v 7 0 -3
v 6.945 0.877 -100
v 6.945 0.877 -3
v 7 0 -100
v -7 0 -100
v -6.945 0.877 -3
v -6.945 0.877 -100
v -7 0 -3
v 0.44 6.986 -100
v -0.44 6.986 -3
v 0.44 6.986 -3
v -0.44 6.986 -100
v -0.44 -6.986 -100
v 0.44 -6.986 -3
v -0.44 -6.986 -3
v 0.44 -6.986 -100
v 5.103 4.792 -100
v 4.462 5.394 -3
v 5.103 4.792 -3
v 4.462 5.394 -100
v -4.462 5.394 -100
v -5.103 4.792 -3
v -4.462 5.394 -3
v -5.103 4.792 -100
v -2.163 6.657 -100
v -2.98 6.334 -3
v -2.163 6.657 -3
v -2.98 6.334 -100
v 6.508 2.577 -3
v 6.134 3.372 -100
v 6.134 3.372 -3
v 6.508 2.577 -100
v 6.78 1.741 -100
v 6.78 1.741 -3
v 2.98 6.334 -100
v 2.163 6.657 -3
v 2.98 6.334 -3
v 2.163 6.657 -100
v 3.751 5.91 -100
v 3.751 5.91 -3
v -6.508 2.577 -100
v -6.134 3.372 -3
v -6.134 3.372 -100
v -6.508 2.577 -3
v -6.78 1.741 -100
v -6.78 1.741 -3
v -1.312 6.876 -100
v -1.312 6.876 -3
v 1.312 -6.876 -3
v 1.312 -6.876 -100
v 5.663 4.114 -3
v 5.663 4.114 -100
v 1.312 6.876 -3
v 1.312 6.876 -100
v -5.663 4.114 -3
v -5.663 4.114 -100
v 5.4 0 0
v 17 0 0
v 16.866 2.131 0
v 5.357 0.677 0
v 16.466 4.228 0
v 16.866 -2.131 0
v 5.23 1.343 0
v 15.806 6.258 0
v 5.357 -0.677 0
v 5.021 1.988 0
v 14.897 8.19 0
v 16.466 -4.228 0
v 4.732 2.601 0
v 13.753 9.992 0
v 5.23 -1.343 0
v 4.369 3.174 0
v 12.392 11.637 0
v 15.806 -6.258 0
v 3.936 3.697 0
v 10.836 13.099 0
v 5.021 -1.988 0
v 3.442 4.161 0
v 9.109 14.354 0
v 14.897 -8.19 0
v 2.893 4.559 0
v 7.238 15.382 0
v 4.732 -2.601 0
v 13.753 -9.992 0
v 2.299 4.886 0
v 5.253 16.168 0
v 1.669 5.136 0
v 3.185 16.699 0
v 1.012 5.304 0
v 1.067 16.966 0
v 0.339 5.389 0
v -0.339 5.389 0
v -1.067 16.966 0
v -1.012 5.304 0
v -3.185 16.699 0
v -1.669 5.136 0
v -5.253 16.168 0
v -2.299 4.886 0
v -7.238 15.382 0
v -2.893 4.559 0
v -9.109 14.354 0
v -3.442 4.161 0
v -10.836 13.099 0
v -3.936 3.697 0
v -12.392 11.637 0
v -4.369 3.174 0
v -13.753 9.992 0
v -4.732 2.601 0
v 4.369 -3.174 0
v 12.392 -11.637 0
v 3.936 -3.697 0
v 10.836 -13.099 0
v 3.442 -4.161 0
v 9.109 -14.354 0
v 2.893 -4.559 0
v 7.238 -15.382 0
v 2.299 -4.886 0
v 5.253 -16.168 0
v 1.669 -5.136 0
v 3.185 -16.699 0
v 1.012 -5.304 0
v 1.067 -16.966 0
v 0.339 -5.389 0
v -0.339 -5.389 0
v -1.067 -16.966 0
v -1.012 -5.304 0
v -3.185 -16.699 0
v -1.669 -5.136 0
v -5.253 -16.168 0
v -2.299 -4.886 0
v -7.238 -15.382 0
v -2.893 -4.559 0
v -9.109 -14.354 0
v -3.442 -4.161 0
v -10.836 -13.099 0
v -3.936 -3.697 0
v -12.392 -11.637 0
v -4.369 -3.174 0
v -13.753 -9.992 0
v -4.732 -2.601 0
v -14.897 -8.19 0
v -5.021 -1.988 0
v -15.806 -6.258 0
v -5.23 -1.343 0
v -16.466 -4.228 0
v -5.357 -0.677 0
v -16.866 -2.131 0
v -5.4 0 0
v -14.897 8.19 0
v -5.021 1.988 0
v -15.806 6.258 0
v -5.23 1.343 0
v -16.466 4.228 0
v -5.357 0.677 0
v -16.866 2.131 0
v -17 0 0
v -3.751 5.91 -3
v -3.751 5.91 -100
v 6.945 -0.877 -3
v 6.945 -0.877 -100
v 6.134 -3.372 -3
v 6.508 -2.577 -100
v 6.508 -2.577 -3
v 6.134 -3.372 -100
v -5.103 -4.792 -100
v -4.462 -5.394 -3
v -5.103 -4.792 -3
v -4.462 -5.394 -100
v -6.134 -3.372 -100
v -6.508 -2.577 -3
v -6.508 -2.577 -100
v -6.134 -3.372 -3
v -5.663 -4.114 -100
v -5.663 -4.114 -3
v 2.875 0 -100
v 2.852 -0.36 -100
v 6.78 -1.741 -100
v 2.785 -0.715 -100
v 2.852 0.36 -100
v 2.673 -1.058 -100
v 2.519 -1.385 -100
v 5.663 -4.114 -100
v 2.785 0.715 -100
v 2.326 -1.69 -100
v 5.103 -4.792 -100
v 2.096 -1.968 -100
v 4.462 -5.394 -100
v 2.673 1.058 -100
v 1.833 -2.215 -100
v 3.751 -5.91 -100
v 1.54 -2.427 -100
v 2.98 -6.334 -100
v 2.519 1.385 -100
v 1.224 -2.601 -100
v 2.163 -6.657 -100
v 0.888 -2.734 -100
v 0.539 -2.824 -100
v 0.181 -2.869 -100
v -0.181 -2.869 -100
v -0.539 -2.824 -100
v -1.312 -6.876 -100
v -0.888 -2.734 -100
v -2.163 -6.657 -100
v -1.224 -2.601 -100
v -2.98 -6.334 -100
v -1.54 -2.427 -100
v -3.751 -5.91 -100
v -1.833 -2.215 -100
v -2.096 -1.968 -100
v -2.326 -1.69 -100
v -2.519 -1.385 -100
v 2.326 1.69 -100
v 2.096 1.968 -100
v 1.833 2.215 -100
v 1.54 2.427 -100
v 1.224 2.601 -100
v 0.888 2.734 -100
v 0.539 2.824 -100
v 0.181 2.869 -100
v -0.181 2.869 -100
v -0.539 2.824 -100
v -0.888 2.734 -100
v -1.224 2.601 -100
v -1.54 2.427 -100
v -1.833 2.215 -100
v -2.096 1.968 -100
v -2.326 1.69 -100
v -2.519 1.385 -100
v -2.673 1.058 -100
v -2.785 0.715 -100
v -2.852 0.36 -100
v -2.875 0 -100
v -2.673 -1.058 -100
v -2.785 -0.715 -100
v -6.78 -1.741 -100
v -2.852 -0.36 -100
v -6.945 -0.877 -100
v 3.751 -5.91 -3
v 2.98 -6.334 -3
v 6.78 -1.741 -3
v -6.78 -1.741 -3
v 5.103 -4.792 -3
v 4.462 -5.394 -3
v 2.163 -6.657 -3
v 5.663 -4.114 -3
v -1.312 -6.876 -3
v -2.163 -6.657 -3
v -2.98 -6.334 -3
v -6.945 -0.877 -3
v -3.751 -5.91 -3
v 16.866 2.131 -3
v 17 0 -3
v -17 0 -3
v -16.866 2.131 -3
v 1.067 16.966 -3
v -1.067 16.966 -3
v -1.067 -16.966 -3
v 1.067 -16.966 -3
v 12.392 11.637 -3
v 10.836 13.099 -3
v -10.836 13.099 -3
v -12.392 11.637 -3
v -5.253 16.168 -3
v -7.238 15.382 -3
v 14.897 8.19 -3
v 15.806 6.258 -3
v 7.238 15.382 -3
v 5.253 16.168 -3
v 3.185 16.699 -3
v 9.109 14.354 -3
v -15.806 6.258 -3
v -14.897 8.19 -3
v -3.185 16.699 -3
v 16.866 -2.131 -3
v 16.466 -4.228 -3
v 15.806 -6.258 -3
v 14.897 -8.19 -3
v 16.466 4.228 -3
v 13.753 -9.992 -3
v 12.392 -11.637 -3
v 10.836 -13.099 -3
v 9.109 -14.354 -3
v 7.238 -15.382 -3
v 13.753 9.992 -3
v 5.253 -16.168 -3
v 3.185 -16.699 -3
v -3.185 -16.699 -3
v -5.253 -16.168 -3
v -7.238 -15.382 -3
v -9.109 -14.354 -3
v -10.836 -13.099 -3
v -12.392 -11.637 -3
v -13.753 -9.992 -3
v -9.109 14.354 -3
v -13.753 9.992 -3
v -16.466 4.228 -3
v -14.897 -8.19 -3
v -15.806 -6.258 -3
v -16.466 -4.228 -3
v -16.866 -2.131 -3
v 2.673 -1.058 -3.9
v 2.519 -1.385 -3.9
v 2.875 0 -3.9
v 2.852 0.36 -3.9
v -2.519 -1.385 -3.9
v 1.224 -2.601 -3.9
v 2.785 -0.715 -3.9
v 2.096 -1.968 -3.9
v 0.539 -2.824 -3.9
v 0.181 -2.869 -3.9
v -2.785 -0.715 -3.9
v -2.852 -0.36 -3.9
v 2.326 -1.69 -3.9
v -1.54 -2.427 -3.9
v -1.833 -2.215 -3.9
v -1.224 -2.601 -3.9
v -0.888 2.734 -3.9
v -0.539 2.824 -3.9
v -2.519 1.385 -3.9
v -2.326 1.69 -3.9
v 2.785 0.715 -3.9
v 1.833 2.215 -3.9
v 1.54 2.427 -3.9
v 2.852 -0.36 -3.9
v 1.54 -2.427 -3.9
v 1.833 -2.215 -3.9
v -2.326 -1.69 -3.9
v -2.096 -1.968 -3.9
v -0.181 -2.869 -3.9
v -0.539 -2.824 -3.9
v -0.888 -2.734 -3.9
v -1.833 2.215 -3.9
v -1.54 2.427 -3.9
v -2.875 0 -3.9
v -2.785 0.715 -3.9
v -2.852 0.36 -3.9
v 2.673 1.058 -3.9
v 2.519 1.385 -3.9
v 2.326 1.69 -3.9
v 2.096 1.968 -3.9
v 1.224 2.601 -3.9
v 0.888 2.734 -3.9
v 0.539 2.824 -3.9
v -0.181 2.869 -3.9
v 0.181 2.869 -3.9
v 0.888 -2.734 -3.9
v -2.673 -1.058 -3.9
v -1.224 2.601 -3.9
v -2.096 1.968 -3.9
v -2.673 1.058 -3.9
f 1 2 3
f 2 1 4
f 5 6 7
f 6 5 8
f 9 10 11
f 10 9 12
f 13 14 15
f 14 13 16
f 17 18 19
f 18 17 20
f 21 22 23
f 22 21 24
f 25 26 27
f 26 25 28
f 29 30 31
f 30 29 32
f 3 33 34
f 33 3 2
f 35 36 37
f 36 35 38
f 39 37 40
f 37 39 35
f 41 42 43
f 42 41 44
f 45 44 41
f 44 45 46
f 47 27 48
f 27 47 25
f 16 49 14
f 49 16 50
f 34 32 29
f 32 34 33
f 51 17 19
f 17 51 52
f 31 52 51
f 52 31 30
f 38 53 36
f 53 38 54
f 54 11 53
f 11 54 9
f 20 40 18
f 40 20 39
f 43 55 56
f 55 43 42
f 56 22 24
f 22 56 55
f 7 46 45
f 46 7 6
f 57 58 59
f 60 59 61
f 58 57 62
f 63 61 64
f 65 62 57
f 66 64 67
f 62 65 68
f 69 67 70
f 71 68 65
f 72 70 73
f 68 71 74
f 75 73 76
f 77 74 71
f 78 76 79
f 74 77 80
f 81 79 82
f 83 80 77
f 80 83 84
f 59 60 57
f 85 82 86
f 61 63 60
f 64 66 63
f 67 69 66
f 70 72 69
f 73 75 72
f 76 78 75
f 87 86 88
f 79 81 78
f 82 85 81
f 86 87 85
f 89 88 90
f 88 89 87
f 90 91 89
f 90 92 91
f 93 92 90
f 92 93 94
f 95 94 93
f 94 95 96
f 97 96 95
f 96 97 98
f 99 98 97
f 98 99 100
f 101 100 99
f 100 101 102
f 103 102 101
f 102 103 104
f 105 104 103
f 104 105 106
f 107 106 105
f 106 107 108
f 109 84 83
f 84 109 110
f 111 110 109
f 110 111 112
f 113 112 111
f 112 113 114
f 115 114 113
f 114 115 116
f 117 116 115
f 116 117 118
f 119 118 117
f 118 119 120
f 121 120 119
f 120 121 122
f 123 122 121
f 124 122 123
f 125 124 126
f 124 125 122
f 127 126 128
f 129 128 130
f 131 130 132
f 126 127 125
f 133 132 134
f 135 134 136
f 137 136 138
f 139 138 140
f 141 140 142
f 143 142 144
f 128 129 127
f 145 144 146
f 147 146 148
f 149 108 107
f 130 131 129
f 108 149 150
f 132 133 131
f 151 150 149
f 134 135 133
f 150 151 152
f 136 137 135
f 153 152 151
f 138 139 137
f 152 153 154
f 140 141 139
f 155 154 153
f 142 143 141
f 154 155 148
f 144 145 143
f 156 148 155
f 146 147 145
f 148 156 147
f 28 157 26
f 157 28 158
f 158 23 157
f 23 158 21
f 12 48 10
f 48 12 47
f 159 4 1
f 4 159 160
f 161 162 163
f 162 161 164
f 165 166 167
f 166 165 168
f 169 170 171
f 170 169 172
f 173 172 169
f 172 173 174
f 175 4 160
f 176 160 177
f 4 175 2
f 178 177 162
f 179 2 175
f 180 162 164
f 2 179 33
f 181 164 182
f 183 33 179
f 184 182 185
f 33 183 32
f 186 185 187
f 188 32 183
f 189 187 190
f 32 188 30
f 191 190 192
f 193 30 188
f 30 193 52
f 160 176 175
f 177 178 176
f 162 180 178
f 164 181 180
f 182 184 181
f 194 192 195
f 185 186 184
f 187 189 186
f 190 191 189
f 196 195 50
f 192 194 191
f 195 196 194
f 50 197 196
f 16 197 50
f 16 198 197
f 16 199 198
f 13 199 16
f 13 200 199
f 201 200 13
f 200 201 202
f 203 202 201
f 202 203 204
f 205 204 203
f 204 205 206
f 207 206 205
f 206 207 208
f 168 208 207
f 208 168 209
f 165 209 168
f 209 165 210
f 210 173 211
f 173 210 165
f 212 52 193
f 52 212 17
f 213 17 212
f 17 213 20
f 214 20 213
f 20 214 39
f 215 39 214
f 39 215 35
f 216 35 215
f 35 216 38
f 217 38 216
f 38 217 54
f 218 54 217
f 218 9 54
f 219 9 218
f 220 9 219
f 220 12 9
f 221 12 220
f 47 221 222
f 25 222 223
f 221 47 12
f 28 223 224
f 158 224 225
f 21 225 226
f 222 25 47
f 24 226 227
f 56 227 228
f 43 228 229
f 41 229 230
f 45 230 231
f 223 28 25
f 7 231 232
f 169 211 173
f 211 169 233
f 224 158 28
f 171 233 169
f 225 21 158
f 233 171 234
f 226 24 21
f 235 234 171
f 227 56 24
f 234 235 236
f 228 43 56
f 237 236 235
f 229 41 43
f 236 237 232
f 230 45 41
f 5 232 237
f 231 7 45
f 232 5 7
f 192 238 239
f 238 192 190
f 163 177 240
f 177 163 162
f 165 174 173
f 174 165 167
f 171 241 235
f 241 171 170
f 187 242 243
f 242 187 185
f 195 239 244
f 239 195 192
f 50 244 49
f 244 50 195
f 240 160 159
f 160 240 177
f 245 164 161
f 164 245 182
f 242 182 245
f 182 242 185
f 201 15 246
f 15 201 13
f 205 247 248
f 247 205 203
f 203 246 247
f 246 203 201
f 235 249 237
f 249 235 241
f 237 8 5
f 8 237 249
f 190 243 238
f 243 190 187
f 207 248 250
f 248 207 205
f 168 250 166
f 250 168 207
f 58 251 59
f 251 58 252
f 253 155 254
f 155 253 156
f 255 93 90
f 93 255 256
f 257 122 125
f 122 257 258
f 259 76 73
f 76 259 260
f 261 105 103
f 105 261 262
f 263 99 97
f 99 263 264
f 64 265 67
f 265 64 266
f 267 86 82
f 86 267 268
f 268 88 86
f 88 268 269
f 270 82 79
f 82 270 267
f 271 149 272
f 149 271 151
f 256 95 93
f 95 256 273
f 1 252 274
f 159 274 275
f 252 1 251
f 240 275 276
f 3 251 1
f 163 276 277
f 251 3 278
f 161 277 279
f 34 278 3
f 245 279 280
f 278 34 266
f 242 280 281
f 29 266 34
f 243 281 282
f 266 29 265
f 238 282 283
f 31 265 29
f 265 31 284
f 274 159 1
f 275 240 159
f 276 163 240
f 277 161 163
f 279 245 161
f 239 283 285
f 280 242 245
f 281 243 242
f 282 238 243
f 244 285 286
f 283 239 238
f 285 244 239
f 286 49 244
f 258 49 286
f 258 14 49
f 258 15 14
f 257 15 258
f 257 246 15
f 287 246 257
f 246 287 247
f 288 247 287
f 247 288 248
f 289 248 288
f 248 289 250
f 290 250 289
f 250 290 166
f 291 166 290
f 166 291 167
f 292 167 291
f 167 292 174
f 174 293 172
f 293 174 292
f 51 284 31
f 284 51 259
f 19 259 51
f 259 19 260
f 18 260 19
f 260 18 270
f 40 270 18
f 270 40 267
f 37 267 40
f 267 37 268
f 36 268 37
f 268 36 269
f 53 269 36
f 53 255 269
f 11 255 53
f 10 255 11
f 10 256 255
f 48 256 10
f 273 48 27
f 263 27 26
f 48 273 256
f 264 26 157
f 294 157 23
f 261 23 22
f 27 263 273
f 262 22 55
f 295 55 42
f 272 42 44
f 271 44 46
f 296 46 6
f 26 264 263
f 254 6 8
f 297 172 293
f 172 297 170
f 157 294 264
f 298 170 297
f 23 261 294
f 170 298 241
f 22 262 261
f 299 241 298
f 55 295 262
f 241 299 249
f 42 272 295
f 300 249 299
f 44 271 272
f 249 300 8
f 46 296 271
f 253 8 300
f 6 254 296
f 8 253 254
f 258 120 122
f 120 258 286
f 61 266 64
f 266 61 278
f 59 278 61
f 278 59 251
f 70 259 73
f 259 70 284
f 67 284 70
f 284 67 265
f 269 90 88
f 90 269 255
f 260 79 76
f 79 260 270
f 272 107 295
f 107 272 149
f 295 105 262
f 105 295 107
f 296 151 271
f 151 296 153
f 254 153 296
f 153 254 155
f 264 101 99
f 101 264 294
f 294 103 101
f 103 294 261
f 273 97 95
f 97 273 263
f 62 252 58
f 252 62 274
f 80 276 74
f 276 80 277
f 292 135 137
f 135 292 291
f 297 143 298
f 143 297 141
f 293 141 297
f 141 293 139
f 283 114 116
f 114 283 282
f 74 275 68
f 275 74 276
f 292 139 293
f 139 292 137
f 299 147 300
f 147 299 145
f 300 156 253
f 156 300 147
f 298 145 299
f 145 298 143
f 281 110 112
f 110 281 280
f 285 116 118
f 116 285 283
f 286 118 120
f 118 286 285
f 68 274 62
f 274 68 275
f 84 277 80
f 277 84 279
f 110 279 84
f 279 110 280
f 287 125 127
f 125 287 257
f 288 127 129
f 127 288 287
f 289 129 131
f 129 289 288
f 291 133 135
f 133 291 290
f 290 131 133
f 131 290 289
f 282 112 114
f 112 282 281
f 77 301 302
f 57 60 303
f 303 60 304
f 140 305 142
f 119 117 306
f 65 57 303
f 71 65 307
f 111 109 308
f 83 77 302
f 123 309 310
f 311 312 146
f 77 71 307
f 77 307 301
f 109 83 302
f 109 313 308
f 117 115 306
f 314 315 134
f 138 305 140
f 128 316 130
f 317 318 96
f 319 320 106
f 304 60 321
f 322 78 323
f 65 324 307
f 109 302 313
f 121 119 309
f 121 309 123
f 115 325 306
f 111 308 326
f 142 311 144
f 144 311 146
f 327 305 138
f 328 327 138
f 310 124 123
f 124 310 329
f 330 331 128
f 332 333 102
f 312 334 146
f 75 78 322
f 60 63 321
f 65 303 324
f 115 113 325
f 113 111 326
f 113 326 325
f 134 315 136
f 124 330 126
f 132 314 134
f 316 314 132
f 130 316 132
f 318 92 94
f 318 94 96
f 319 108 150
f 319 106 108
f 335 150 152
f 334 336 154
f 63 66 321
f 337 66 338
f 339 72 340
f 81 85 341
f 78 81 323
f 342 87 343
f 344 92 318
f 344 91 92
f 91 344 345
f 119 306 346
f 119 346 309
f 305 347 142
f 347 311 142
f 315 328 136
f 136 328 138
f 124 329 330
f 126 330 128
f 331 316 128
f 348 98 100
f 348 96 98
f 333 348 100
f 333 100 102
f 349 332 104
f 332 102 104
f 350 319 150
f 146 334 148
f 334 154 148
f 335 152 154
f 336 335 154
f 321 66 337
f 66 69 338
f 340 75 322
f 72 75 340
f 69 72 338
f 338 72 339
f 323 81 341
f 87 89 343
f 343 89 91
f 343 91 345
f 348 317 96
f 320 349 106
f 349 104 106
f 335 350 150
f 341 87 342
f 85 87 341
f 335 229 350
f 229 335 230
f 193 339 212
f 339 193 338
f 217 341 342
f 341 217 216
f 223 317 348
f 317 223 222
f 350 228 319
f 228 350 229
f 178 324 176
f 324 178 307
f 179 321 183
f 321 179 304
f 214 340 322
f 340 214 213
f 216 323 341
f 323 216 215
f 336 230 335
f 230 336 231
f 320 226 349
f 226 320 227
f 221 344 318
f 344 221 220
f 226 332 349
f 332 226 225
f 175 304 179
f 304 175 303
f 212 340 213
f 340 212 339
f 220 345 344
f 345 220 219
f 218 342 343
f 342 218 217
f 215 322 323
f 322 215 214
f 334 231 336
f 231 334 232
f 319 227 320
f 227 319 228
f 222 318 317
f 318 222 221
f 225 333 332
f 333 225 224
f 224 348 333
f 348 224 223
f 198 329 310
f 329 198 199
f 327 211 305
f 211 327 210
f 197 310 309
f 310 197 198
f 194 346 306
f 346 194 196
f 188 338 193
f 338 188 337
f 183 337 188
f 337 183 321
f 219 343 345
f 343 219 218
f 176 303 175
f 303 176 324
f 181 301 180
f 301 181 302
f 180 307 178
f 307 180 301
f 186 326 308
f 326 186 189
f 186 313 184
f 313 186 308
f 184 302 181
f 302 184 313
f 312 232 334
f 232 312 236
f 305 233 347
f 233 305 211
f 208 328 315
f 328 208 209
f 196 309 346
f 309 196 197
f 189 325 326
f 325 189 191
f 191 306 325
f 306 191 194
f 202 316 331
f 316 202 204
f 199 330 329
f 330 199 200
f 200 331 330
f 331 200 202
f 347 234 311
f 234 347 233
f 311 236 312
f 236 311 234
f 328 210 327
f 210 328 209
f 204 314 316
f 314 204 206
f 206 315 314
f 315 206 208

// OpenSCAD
$fn = 50;


difference() {
	union() {
		translate(v = [0, 0, -100.0000000000]) {
			cylinder(h = 100, r = 7.0000000000);
		}
		translate(v = [0, 0, -3.0000000000]) {
			cylinder(h = 3, r = 17.0000000000);
		}
	}
	union() {
		translate(v = [0, 0, 0]) {
			rotate(a = [0, 0, 0]) {
				difference() {
					union() {
						#translate(v = [0, 0, -100.0000000000]) {
							cylinder(h = 100, r = 2.6000000000);
						}
						#translate(v = [0, 0, -3.9000000000]) {
							cylinder(h = 3.9000000000, r = 7.0000000000, r1 = 2.8750000000, r2 = 5.4000000000);
						}
						#translate(v = [0, 0, -100.0000000000]) {
							cylinder(h = 100, r = 2.8750000000);
						}
						#translate(v = [0, 0, -100.0000000000]) {
							cylinder(h = 100, r = 2.6000000000);
						}
					}
					union();
				}
			}
		}
	}
}
